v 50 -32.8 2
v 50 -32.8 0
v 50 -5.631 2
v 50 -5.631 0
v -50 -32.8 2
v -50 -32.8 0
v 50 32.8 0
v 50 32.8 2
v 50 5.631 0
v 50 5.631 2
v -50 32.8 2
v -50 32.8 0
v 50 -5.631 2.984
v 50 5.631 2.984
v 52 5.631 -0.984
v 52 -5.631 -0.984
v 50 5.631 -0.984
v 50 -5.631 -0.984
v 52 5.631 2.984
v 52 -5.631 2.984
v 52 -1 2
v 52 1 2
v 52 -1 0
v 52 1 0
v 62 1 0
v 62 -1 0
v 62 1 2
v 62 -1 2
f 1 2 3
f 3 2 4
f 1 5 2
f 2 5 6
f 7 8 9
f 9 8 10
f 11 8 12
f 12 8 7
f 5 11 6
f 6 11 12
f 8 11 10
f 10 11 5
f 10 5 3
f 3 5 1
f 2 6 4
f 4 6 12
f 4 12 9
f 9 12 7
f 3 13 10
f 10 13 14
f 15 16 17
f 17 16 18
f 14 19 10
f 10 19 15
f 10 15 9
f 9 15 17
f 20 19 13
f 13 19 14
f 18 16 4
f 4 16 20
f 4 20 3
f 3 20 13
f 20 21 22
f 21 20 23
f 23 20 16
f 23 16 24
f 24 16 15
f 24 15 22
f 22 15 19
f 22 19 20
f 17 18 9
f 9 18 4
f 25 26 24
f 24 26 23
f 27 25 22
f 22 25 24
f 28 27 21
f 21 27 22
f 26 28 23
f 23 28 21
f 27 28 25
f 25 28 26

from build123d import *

# Parameters (mm, degrees)
SKETCH1_W           = 100
SKETCH1_H           = 65.6
BOSS_EXTRUDE1_DEPTH = 2
SKETCH2_W           = 3.96828804
SKETCH2_H           = 11.261454498
BOSS_EXTRUDE2_DEPTH = 2
SKETCH3_W           = 2
SKETCH3_H           = 2
BOSS_EXTRUDE3_DEPTH = 10


with BuildPart() as part:
    # Sketch1 → Boss-Extrude1 (new body)
    with BuildSketch(Plane.XY):
        Rectangle(SKETCH1_W, SKETCH1_H)
    extrude(amount=BOSS_EXTRUDE1_DEPTH)

    # Sketch2 → Boss-Extrude2 (add)
    with BuildSketch(Plane(origin=(50, 0, 0), x_dir=(0, 0, -1), z_dir=(1, 0, 0))):
        with Locations((-1, 0)):
            Rectangle(SKETCH2_W, SKETCH2_H)
    extrude(amount=BOSS_EXTRUDE2_DEPTH)

    # Sketch3 → Boss-Extrude3 (add)
    with BuildSketch(Plane(origin=(52, 0, 0), x_dir=(0, 0, -1), z_dir=(1, 0, 0))):
        with Locations((-1, 0)):
            Rectangle(SKETCH3_W, SKETCH3_H)
    extrude(amount=BOSS_EXTRUDE3_DEPTH)


solid = part.part
